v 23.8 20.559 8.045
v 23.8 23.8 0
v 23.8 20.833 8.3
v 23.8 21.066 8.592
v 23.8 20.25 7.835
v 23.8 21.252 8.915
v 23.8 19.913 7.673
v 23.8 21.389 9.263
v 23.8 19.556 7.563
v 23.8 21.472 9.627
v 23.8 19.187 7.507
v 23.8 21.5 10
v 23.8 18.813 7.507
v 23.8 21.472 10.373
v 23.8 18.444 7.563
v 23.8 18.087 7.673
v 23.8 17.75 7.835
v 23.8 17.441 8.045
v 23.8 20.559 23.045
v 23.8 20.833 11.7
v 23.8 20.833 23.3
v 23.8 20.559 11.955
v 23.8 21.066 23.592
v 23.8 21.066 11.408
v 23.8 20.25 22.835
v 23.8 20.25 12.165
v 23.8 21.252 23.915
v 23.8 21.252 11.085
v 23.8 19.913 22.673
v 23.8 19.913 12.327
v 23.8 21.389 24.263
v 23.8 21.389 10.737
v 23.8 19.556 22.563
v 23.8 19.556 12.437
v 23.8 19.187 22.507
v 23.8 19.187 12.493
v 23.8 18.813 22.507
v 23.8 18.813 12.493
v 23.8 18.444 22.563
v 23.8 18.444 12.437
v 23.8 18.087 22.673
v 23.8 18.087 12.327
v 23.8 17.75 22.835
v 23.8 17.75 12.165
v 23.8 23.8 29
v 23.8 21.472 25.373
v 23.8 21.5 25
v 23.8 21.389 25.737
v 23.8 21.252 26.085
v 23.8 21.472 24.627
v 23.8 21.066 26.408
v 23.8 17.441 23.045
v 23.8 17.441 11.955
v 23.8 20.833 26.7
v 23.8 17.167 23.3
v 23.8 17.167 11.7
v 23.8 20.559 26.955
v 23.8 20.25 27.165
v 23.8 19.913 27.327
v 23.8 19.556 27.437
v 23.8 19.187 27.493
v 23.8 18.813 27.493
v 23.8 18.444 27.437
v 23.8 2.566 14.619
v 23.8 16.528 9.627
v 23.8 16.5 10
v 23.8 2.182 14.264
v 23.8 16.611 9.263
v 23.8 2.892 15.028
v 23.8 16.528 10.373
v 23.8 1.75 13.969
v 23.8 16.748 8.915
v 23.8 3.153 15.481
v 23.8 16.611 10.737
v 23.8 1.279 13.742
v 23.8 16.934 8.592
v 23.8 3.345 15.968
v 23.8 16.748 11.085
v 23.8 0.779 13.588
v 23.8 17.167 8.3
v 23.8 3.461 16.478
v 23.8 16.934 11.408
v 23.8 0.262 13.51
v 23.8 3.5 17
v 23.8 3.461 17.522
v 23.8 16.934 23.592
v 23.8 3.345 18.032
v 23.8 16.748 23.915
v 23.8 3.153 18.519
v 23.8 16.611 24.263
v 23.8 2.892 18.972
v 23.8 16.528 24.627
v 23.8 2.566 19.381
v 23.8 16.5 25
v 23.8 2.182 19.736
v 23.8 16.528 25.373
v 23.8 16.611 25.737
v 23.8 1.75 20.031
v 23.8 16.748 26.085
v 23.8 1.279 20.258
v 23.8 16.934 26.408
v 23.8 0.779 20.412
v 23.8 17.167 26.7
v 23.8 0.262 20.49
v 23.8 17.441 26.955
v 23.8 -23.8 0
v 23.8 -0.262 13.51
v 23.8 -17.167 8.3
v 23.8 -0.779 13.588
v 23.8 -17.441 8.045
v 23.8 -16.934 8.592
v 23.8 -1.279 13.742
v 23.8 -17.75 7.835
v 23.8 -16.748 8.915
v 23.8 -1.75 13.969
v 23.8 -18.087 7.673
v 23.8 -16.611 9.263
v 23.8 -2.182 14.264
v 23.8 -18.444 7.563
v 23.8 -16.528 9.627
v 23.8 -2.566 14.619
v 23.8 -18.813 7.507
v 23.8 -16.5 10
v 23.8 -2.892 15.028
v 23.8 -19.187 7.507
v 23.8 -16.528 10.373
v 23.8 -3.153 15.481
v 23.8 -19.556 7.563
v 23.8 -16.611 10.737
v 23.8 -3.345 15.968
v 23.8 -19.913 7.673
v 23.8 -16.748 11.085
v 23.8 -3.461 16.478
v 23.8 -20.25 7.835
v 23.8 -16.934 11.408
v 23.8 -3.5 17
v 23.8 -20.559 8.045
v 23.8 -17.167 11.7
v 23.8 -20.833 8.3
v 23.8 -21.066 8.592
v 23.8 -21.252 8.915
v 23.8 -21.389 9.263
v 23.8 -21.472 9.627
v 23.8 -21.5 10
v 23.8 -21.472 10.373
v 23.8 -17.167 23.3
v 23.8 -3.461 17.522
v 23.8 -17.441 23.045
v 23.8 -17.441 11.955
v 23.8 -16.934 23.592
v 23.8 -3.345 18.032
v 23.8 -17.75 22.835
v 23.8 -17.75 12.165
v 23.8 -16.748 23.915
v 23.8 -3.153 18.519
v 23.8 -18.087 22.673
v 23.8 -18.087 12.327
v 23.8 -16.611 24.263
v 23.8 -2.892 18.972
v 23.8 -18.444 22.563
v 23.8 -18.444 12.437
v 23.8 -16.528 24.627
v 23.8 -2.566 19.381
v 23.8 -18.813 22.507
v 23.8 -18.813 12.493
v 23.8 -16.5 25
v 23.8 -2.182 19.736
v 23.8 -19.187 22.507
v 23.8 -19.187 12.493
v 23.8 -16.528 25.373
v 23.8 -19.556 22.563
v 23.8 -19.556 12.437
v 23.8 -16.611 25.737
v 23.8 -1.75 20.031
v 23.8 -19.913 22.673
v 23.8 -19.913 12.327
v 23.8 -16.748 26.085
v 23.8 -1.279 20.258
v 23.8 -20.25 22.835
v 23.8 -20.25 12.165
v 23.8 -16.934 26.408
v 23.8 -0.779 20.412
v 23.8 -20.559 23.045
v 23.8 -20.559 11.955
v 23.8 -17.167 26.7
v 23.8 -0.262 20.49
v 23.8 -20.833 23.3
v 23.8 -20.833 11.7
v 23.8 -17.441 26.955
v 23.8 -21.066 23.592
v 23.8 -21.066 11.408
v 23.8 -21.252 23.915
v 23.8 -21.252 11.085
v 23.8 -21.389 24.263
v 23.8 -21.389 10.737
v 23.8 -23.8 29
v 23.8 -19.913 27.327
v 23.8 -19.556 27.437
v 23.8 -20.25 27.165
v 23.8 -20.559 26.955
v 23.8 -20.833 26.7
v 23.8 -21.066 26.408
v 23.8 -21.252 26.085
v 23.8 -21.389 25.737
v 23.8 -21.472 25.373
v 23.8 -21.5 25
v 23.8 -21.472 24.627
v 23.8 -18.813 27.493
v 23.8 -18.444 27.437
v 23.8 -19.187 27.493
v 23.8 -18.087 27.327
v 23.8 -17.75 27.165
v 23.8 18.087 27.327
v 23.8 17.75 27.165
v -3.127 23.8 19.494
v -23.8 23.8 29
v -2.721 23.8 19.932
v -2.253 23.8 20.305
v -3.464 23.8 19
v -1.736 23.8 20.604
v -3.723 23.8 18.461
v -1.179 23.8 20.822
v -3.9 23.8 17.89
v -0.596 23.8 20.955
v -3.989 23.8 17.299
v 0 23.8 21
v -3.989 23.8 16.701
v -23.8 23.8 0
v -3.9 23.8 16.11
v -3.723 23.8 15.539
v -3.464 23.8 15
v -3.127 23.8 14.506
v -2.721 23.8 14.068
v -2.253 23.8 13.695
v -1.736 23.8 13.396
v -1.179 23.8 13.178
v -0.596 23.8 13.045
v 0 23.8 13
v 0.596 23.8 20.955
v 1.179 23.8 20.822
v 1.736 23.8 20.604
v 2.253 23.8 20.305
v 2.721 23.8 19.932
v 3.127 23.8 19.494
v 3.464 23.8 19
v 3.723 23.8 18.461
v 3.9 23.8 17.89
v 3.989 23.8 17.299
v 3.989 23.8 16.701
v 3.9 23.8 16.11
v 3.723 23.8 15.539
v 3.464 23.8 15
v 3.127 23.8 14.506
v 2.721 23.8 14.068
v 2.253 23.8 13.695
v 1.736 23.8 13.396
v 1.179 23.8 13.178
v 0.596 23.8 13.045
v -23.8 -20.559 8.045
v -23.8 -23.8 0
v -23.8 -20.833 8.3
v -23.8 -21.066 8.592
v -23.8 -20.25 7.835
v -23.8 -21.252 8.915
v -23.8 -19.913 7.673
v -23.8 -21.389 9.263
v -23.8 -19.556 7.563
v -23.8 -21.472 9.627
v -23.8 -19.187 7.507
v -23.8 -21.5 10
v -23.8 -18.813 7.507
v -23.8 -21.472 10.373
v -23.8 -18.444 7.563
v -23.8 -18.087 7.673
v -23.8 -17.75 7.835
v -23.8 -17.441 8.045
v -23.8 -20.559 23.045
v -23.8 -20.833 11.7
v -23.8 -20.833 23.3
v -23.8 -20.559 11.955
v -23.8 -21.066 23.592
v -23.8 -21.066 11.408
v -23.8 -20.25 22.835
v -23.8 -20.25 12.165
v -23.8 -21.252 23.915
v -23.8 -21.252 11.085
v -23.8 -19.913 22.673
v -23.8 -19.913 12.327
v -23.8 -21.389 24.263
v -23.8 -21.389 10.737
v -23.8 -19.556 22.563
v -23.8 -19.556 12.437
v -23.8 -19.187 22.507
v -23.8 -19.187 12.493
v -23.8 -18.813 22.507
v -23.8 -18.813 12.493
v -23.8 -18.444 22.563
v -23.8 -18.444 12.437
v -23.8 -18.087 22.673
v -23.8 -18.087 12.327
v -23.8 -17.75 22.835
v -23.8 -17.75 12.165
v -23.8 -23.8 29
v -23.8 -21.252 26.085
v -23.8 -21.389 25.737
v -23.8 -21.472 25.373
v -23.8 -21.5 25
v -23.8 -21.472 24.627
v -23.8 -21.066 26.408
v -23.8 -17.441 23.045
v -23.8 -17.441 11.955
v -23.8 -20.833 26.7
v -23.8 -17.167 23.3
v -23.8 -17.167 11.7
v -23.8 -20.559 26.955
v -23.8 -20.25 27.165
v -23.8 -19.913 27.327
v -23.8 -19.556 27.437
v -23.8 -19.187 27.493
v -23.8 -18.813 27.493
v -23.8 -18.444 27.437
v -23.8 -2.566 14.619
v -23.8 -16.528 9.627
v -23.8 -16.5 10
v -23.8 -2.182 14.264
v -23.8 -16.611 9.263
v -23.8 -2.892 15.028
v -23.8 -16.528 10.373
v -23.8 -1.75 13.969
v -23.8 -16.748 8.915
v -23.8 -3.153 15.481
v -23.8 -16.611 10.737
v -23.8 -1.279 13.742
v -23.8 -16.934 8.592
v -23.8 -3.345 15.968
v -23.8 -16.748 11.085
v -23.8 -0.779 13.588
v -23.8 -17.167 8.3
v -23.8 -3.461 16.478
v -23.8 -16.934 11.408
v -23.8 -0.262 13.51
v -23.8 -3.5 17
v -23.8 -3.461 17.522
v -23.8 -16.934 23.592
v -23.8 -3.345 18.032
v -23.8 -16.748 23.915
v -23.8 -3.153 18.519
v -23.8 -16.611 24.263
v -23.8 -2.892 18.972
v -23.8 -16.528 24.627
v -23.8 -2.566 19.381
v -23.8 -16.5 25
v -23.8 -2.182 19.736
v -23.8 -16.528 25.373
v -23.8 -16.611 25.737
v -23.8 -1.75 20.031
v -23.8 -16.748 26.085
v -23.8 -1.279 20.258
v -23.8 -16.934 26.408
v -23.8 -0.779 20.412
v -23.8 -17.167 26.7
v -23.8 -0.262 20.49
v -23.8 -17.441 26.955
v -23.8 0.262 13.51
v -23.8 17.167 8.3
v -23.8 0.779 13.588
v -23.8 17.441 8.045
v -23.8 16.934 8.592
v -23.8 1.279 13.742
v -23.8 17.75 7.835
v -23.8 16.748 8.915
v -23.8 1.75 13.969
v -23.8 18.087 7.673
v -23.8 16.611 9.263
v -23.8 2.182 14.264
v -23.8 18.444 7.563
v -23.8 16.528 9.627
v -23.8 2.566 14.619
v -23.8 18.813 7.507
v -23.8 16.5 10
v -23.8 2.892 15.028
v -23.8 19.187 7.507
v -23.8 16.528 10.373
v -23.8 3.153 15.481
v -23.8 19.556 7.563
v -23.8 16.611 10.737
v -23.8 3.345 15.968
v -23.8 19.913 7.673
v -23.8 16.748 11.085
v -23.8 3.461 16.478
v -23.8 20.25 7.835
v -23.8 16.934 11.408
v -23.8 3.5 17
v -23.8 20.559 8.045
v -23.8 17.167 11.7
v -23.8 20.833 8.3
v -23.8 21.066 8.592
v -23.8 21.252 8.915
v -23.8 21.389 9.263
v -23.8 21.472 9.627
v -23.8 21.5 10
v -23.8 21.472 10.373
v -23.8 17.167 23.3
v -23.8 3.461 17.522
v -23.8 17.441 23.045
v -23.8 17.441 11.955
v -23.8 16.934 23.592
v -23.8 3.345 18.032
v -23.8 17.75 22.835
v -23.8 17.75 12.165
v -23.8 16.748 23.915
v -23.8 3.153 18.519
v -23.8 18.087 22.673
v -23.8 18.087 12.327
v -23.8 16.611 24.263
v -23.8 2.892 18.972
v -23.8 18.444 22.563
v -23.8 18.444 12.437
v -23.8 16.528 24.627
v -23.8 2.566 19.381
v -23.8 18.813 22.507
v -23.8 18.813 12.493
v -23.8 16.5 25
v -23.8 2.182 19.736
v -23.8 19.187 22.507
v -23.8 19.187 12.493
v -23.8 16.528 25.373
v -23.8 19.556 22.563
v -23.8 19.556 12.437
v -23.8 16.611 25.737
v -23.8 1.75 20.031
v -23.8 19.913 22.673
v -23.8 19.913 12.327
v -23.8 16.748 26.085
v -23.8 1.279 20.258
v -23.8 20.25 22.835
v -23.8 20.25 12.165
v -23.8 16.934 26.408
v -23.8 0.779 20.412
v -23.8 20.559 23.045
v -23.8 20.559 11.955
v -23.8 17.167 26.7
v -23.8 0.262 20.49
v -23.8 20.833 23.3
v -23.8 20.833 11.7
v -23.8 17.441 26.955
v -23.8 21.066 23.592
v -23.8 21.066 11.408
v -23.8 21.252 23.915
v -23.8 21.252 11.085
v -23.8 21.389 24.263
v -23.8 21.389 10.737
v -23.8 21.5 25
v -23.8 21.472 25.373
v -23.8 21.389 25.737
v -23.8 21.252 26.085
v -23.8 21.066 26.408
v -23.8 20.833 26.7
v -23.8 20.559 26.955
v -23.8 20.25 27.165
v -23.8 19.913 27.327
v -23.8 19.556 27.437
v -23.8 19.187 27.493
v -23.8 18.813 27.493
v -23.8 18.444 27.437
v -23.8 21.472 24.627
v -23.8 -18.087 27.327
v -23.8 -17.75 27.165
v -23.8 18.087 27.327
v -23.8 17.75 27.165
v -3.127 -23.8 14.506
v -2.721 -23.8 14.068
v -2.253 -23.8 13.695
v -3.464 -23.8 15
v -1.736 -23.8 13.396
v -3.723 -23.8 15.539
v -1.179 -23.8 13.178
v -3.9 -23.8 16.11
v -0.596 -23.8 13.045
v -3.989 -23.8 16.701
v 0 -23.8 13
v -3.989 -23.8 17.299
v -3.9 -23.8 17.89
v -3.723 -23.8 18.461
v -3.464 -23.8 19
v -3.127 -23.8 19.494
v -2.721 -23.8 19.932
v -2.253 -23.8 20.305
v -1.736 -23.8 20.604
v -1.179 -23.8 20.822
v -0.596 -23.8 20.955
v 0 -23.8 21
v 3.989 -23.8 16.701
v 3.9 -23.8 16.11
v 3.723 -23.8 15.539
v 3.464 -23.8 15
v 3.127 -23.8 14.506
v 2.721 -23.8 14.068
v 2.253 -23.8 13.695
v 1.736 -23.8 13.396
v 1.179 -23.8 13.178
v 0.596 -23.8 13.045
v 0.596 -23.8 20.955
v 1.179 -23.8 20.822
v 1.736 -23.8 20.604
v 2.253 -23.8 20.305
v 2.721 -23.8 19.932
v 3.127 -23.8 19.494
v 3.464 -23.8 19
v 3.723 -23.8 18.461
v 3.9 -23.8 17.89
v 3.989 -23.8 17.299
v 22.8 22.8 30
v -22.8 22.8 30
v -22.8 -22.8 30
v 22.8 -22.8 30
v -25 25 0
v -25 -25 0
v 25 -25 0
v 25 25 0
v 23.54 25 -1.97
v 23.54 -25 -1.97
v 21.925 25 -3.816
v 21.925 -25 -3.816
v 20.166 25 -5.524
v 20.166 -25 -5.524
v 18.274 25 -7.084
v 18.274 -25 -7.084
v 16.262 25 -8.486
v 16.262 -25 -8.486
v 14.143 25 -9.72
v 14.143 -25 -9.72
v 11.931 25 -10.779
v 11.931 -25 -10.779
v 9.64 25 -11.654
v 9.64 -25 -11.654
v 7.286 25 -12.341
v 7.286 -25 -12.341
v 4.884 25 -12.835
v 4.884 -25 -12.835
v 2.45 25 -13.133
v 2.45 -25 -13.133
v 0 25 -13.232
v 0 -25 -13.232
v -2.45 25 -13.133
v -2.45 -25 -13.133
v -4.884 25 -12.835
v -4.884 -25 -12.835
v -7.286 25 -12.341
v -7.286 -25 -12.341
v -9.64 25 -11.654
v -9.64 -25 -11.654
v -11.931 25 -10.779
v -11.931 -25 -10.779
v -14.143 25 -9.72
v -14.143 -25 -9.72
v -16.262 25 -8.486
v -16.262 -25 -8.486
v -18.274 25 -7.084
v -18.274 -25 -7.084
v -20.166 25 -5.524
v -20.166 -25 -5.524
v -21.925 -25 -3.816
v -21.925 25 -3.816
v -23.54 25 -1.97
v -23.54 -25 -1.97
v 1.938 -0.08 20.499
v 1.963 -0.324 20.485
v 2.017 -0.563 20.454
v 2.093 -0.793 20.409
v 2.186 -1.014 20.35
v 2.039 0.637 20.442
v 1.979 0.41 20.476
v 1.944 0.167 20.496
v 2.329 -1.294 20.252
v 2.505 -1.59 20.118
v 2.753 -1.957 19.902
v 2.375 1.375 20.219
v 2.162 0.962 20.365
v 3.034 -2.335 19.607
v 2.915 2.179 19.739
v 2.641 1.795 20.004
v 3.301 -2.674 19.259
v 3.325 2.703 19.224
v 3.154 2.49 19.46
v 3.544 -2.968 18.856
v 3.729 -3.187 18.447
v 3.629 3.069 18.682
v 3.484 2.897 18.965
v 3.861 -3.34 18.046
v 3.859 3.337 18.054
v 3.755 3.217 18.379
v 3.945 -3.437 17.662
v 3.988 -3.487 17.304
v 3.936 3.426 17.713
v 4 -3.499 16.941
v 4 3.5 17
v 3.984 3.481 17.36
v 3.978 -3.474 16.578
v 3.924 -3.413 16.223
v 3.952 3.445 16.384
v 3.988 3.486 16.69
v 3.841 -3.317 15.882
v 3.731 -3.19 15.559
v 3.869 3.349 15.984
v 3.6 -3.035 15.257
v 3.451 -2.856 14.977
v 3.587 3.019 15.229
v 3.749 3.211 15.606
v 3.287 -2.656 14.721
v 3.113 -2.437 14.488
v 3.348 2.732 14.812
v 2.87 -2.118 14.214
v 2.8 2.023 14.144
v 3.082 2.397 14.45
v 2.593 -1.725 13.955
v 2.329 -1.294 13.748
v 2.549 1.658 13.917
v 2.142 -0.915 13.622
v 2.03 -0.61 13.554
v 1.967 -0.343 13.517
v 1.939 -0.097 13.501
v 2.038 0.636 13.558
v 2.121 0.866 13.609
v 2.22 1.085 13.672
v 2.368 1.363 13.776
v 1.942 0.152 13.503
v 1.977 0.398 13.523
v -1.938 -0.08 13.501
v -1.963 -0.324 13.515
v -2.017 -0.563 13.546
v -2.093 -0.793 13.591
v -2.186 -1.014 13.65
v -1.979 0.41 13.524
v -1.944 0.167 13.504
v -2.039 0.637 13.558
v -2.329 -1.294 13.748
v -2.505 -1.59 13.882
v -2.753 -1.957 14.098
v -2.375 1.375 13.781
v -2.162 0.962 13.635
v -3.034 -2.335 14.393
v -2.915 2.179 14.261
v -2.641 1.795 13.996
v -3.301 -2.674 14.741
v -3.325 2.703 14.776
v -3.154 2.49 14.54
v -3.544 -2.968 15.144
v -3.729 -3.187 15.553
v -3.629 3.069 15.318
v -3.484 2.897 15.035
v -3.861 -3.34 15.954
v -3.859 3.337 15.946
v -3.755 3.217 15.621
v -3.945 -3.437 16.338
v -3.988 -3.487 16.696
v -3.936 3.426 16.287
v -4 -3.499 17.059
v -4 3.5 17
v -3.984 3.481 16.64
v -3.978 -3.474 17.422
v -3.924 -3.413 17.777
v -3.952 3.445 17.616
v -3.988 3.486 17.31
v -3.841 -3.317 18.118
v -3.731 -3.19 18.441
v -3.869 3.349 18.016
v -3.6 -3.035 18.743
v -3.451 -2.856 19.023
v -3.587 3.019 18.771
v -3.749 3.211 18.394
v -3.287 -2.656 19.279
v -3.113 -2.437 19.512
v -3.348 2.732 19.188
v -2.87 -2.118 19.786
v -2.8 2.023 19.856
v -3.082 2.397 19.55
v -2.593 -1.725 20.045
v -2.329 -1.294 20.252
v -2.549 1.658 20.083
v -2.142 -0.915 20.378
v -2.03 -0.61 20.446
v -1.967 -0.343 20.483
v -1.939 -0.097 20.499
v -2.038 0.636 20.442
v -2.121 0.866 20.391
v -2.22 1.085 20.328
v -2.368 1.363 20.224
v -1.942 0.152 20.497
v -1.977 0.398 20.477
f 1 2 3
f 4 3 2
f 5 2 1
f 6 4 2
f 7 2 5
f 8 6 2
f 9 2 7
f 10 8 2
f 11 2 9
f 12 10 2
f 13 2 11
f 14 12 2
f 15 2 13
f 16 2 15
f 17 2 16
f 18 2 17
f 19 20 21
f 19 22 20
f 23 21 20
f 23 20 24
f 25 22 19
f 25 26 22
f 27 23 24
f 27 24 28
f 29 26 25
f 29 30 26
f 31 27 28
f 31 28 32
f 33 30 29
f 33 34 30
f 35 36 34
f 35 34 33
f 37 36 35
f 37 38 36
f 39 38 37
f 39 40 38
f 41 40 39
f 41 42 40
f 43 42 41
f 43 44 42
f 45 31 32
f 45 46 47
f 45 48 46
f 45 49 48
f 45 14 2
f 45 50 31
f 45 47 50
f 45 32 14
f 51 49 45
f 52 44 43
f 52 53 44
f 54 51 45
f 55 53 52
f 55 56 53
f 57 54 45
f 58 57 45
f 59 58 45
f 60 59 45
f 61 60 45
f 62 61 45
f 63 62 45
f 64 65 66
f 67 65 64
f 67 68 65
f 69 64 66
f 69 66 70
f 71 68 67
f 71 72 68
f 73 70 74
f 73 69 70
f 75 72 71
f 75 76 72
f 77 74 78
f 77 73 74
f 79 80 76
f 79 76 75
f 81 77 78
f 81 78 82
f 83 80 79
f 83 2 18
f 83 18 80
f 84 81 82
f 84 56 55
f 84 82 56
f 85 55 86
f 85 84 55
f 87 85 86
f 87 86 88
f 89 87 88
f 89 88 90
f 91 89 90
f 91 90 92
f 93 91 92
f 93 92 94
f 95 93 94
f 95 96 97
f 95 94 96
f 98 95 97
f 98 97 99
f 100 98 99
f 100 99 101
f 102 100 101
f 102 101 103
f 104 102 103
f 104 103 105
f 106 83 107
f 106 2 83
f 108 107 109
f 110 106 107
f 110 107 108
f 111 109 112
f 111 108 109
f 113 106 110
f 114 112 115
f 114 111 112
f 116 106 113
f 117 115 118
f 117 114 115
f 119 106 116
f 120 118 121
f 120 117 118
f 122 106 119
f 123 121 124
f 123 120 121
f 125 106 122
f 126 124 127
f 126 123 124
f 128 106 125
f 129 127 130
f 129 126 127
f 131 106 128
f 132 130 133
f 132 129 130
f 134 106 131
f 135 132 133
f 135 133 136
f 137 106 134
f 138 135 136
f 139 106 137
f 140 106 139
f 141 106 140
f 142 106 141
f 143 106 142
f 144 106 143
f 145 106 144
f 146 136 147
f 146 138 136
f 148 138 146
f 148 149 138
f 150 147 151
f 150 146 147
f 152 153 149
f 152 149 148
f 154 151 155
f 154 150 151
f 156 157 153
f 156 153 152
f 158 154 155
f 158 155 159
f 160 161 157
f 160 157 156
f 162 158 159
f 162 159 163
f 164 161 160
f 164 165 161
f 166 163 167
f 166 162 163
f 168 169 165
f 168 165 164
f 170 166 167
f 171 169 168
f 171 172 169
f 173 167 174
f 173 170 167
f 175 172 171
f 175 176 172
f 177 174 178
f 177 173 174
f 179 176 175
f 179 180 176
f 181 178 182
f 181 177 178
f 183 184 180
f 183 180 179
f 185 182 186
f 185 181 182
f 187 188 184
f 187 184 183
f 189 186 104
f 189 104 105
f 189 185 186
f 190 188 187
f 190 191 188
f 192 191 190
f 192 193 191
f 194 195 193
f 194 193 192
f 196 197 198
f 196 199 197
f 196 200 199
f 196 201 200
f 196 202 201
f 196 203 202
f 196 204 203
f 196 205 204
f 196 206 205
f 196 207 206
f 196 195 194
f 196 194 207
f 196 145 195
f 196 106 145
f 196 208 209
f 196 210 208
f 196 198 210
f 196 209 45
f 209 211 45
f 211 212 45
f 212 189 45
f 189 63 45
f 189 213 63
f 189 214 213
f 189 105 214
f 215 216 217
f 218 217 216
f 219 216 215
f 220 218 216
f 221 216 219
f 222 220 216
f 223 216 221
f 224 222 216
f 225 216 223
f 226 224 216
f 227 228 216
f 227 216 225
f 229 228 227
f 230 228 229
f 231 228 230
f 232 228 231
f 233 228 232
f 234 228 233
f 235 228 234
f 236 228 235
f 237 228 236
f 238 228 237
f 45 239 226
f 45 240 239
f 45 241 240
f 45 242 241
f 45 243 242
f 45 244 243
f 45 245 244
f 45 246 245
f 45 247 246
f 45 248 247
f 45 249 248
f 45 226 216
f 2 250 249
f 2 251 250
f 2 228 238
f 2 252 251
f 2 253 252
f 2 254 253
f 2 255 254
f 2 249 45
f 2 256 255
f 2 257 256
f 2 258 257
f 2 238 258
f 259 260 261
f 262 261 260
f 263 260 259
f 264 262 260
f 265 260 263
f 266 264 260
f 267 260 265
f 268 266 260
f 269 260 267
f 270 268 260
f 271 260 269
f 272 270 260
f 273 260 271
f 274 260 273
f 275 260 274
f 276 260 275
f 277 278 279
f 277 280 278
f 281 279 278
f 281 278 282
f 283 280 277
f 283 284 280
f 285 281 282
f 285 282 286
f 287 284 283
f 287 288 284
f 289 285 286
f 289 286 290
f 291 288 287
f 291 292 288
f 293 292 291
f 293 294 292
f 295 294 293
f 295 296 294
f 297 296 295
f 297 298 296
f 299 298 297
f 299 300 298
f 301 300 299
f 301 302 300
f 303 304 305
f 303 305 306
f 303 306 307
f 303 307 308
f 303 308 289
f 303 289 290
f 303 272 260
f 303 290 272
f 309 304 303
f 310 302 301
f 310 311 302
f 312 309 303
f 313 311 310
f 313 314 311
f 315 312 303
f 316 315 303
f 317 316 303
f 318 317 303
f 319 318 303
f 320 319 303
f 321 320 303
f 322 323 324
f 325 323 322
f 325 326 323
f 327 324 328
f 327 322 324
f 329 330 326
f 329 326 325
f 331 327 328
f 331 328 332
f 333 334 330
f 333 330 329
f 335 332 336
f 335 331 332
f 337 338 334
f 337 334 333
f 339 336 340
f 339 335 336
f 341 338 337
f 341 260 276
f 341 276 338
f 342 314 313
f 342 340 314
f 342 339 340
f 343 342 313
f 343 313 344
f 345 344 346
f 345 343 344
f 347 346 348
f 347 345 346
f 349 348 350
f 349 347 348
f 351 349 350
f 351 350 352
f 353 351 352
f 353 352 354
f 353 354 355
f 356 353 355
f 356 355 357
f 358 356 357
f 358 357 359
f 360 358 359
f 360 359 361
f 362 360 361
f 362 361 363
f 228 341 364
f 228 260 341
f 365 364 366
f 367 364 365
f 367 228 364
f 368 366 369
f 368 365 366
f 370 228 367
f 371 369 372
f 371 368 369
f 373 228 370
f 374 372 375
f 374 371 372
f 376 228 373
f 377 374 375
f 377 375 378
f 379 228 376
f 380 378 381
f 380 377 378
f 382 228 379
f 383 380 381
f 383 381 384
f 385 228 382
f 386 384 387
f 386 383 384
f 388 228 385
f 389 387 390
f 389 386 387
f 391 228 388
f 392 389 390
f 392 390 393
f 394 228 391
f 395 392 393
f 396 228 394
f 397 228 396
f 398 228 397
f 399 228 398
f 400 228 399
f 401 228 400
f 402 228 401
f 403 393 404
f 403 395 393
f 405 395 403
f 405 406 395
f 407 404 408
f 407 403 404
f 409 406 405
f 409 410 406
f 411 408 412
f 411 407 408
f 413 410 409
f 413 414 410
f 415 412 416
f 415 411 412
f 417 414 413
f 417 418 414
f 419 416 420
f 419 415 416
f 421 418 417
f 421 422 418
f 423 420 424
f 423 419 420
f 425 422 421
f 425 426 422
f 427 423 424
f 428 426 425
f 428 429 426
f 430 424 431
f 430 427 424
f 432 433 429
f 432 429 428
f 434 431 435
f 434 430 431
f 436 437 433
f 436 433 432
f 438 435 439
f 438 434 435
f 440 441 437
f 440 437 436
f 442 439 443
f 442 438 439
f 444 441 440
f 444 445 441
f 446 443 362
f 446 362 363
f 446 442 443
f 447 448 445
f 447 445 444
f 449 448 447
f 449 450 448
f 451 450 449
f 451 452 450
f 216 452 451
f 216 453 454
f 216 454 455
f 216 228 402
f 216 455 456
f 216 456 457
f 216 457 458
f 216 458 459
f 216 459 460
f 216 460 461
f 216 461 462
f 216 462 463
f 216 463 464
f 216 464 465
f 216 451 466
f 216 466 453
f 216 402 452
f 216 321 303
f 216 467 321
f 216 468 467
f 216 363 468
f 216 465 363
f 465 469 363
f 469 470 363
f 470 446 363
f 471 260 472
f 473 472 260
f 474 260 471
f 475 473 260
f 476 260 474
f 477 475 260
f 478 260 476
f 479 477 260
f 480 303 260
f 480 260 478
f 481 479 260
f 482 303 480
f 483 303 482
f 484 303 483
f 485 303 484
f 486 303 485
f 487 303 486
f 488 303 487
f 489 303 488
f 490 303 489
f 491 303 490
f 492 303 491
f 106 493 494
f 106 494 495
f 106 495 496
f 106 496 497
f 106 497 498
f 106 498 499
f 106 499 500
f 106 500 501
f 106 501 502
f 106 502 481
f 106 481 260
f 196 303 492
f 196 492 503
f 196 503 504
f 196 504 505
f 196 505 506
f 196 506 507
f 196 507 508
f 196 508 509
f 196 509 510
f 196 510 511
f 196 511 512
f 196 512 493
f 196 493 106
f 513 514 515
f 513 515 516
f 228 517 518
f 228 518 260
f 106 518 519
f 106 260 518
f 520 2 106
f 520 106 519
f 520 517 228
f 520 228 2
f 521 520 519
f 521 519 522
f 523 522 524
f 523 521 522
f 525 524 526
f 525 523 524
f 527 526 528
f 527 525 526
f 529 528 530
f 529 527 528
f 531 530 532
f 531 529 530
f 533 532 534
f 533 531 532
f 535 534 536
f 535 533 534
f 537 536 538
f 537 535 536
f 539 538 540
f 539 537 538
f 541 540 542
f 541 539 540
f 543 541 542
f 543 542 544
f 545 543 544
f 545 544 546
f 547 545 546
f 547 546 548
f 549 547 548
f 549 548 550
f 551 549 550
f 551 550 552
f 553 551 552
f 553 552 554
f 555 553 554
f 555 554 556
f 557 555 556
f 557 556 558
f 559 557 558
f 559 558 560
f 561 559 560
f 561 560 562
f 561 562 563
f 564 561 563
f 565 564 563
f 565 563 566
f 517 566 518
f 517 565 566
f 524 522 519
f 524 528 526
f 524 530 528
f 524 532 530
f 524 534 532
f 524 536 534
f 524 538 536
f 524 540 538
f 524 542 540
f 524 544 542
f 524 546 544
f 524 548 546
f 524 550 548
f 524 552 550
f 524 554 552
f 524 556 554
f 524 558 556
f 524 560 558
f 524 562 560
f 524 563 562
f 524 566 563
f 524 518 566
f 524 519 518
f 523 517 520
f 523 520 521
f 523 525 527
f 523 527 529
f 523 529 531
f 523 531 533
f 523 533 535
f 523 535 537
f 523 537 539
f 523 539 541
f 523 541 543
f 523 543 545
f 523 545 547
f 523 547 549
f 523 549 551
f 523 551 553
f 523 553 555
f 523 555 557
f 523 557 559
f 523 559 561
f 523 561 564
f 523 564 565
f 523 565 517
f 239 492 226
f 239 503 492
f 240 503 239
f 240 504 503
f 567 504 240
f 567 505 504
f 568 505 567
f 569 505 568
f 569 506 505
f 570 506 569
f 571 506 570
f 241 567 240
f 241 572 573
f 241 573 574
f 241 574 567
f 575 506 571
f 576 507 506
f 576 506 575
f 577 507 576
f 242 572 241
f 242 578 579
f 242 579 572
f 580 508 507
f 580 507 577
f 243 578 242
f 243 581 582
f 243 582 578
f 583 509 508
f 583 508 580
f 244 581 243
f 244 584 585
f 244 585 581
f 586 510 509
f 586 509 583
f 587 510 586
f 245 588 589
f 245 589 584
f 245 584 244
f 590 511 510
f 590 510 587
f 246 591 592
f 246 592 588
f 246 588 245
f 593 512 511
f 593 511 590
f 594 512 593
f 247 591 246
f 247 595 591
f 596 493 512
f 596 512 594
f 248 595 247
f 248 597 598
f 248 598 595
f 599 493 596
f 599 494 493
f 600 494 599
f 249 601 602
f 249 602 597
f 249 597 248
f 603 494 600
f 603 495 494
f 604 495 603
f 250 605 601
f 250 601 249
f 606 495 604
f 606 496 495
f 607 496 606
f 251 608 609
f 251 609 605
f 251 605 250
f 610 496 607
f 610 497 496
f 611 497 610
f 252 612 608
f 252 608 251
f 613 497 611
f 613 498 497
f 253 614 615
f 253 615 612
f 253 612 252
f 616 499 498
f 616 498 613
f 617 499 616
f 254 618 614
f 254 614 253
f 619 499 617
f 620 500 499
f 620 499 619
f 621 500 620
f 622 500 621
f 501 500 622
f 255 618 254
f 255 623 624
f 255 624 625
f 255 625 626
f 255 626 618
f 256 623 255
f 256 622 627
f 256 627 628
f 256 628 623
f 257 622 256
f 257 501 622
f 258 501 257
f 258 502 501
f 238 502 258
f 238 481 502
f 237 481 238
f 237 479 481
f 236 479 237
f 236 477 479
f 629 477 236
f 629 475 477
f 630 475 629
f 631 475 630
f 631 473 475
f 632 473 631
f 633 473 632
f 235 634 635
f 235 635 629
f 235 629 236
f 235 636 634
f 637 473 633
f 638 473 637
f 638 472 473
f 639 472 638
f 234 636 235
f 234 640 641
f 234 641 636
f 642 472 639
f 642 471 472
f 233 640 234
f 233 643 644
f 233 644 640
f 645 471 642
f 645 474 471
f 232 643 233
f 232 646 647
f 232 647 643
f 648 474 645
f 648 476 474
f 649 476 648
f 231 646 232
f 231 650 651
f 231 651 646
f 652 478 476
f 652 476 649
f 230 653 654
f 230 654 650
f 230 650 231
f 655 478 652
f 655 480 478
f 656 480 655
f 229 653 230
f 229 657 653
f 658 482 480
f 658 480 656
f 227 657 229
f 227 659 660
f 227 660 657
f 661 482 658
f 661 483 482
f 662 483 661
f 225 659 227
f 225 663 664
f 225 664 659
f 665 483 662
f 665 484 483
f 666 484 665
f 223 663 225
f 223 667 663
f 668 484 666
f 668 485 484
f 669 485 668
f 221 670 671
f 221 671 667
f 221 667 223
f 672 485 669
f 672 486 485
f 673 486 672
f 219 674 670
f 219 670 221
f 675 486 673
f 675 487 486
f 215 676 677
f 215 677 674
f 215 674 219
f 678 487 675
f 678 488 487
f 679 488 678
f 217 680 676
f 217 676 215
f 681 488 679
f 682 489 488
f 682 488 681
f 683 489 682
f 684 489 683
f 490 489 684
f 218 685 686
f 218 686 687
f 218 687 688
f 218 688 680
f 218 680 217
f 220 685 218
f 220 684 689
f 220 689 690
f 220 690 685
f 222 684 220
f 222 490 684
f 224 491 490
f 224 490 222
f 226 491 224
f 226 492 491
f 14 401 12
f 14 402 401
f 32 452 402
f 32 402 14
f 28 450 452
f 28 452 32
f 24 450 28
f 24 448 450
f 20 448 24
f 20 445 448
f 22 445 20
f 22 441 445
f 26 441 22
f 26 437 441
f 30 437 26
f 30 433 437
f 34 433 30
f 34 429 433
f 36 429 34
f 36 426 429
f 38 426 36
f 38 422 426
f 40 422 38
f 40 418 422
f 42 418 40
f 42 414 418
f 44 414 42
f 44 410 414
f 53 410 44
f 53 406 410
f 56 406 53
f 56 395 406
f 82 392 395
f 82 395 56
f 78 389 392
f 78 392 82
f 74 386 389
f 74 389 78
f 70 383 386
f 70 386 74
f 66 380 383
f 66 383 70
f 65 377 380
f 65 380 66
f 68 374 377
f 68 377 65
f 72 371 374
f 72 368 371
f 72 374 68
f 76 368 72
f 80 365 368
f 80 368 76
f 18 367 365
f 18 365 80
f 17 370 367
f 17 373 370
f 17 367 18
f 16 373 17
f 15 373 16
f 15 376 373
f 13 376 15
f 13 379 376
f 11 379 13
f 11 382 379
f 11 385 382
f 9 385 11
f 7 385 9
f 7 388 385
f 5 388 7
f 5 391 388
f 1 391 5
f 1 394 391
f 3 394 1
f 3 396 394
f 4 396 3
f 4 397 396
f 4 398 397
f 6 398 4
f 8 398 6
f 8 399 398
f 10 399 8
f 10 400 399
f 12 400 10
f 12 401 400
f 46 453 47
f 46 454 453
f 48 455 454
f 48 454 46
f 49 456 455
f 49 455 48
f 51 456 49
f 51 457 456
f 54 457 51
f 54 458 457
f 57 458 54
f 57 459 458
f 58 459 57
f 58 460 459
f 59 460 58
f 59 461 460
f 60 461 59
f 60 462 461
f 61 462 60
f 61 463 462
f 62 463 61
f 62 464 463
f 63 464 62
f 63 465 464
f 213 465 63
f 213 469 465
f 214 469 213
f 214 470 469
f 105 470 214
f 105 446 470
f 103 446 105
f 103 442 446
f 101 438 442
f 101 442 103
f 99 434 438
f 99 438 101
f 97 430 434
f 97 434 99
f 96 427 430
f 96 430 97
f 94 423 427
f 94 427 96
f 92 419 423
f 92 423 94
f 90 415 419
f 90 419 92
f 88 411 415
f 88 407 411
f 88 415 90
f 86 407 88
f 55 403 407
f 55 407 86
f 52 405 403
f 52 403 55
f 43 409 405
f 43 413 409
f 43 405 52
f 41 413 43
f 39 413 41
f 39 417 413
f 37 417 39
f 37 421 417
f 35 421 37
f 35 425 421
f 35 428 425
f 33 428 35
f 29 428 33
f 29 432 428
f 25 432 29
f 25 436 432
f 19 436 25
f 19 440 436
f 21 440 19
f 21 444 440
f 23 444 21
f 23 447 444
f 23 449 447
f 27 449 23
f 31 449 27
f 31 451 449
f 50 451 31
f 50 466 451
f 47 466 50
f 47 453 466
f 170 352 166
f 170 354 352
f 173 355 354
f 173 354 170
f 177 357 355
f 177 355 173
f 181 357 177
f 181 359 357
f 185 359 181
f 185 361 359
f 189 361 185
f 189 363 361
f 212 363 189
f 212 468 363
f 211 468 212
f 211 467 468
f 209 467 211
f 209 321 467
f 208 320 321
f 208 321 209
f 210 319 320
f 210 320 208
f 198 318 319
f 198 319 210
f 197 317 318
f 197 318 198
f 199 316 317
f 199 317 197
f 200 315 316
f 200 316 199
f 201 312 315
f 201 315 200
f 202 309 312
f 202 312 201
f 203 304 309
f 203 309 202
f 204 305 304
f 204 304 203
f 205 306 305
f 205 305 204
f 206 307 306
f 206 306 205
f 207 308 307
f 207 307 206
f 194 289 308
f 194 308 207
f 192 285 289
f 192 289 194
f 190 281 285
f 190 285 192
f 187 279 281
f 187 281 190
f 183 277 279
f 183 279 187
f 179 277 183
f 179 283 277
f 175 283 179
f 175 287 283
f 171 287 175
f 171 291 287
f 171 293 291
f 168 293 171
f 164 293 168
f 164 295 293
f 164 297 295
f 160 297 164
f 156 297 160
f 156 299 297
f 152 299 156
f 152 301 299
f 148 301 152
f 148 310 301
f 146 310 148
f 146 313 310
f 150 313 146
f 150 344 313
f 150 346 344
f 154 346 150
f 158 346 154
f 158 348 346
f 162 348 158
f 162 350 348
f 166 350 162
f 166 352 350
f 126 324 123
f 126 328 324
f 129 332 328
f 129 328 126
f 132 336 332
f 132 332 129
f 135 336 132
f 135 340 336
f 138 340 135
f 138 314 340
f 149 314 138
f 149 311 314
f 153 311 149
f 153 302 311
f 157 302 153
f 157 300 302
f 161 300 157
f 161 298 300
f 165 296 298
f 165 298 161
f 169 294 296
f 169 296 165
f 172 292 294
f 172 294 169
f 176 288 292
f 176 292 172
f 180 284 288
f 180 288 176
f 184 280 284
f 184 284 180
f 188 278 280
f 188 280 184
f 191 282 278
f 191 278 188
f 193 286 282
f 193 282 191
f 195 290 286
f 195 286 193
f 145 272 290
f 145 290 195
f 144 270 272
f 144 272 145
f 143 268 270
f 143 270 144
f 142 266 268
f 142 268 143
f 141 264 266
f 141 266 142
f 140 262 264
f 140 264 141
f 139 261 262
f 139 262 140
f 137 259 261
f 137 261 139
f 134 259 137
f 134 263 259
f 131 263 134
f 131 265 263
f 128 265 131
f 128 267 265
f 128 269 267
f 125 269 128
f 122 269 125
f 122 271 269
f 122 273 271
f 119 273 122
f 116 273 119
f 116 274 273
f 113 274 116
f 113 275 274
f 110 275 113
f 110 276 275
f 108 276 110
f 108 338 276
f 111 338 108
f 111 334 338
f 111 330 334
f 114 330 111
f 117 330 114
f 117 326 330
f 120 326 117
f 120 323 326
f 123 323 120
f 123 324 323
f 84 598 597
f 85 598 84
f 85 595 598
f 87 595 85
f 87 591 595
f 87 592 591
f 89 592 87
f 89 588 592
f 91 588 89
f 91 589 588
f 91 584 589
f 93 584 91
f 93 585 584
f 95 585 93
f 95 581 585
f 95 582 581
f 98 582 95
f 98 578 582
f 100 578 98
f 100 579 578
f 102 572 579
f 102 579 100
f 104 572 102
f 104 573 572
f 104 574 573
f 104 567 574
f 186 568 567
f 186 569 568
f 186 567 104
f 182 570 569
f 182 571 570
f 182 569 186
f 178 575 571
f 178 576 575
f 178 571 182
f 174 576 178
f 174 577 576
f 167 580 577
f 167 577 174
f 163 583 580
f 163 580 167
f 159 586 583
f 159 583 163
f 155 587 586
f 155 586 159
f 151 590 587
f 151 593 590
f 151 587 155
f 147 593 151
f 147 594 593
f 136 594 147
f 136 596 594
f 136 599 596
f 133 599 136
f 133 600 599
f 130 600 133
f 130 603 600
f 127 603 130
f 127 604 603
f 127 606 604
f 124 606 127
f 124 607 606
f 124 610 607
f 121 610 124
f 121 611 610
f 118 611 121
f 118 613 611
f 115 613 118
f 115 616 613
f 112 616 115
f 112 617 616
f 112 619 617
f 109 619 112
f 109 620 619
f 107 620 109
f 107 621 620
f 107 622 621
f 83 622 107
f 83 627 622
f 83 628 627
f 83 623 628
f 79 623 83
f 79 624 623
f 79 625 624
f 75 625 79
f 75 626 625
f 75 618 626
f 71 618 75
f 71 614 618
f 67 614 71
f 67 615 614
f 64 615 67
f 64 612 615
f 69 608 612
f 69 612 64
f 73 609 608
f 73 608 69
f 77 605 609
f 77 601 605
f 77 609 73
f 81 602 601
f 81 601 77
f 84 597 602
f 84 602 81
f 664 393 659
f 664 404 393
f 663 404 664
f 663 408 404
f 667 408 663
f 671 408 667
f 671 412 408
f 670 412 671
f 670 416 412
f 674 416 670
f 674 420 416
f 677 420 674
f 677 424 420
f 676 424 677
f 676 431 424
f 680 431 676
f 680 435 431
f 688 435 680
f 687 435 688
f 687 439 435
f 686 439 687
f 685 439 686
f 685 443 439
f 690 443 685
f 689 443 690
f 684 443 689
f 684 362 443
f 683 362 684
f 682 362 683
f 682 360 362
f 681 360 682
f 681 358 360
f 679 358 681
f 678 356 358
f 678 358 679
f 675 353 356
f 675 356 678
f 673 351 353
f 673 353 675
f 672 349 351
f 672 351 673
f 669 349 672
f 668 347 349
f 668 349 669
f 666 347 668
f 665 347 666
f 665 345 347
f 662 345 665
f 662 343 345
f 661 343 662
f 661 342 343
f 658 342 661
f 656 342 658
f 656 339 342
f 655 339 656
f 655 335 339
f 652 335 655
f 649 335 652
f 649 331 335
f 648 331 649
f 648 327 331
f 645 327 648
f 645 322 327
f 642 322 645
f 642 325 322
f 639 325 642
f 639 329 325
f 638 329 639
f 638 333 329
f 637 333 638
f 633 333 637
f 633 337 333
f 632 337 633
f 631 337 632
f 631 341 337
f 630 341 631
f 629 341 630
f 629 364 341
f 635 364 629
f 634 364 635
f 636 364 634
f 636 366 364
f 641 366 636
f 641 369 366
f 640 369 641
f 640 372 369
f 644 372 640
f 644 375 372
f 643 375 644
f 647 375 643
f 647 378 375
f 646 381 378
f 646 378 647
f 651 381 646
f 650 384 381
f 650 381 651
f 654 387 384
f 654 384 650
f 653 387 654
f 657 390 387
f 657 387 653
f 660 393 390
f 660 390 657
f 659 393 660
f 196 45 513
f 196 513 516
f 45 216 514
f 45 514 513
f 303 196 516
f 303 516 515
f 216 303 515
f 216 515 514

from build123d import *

# Parameters (mm, degrees)
CROQUIS1_W                   = 47.6
CROQUIS1_H                   = 47.6
SALIENTE_EXTRUIR1_DEPTH      = 30
SALIENTE_EXTRUIR2_DEPTH      = 25
SALIENTE_EXTRUIR2_DEPTH_BACK = 25
CROQUIS3_R                   = 4
CORTAR_EXTRUIR1_DEPTH        = 63.501519982
CROQUIS4_R                   = 2.5
CROQUIS4_R_2                 = 3.5
CORTAR_EXTRUIR2_DEPTH        = 63.501519982
CHAFL_N1_SIZE                = 1


with BuildPart() as part:
    # Croquis1 → Saliente-Extruir1 (new body)
    with BuildSketch(Plane.XY):
        Rectangle(CROQUIS1_W, CROQUIS1_H)
    extrude(amount=SALIENTE_EXTRUIR1_DEPTH)

    # Croquis2 → Saliente-Extruir2 (add, two sides: drawn at the far end of the back side and taken through both)
    with BuildSketch(Plane(origin=(0, 0, 0), x_dir=(1, 0, 0), z_dir=(0, 1, 0)).offset(-SALIENTE_EXTRUIR2_DEPTH_BACK)):
        with BuildLine():
            Line((-25, 0), (25, 0))
            ThreePointArc((25, 0), (0, 13.232432916), (-25, 0))
        make_face()
    extrude(amount=SALIENTE_EXTRUIR2_DEPTH + SALIENTE_EXTRUIR2_DEPTH_BACK)

    # Croquis3 → Cortar-Extruir1 (cut, through all)
    with BuildSketch(Plane(origin=(0, 23.8, 0), x_dir=(1, 0, 0), z_dir=(0, 1, 0))):
        with Locations(Location((0, -17, 0), (0, 0, 270))):
            Circle(CROQUIS3_R)
    extrude(amount=-CORTAR_EXTRUIR1_DEPTH, mode=Mode.SUBTRACT)

    # Croquis4 → Cortar-Extruir2 (cut, through all)
    with BuildSketch(Plane(origin=(23.8, 0, 0), x_dir=(0, 0, -1), z_dir=(1, 0, 0))):
        with Locations(Location((-10, 19, 0), (0, 0, 90))):
            Circle(CROQUIS4_R)
        with Locations(Location((-25, 19, 0), (0, 0, 90))):
            Circle(CROQUIS4_R)
        with Locations(Location((-25, -19, 0), (0, 0, 90))):
            Circle(CROQUIS4_R)
        with Locations(Location((-10, -19, 0), (0, 0, 90))):
            Circle(CROQUIS4_R)
        with Locations(Location((-17, 0, 0), (0, 0, 90))):
            Circle(CROQUIS4_R_2)
    extrude(amount=-CORTAR_EXTRUIR2_DEPTH, mode=Mode.SUBTRACT)

    # Chaflán1
    chafl_n1_edges = [part.edges().sort_by_distance(p)[0] for p in [
        (-23.8, 0, 30),
        (0, -23.8, 30),
        (23.8, 0, 30),
        (0, 23.8, 30),
    ]]
    chamfer(chafl_n1_edges, length=CHAFL_N1_SIZE)


solid = part.part
